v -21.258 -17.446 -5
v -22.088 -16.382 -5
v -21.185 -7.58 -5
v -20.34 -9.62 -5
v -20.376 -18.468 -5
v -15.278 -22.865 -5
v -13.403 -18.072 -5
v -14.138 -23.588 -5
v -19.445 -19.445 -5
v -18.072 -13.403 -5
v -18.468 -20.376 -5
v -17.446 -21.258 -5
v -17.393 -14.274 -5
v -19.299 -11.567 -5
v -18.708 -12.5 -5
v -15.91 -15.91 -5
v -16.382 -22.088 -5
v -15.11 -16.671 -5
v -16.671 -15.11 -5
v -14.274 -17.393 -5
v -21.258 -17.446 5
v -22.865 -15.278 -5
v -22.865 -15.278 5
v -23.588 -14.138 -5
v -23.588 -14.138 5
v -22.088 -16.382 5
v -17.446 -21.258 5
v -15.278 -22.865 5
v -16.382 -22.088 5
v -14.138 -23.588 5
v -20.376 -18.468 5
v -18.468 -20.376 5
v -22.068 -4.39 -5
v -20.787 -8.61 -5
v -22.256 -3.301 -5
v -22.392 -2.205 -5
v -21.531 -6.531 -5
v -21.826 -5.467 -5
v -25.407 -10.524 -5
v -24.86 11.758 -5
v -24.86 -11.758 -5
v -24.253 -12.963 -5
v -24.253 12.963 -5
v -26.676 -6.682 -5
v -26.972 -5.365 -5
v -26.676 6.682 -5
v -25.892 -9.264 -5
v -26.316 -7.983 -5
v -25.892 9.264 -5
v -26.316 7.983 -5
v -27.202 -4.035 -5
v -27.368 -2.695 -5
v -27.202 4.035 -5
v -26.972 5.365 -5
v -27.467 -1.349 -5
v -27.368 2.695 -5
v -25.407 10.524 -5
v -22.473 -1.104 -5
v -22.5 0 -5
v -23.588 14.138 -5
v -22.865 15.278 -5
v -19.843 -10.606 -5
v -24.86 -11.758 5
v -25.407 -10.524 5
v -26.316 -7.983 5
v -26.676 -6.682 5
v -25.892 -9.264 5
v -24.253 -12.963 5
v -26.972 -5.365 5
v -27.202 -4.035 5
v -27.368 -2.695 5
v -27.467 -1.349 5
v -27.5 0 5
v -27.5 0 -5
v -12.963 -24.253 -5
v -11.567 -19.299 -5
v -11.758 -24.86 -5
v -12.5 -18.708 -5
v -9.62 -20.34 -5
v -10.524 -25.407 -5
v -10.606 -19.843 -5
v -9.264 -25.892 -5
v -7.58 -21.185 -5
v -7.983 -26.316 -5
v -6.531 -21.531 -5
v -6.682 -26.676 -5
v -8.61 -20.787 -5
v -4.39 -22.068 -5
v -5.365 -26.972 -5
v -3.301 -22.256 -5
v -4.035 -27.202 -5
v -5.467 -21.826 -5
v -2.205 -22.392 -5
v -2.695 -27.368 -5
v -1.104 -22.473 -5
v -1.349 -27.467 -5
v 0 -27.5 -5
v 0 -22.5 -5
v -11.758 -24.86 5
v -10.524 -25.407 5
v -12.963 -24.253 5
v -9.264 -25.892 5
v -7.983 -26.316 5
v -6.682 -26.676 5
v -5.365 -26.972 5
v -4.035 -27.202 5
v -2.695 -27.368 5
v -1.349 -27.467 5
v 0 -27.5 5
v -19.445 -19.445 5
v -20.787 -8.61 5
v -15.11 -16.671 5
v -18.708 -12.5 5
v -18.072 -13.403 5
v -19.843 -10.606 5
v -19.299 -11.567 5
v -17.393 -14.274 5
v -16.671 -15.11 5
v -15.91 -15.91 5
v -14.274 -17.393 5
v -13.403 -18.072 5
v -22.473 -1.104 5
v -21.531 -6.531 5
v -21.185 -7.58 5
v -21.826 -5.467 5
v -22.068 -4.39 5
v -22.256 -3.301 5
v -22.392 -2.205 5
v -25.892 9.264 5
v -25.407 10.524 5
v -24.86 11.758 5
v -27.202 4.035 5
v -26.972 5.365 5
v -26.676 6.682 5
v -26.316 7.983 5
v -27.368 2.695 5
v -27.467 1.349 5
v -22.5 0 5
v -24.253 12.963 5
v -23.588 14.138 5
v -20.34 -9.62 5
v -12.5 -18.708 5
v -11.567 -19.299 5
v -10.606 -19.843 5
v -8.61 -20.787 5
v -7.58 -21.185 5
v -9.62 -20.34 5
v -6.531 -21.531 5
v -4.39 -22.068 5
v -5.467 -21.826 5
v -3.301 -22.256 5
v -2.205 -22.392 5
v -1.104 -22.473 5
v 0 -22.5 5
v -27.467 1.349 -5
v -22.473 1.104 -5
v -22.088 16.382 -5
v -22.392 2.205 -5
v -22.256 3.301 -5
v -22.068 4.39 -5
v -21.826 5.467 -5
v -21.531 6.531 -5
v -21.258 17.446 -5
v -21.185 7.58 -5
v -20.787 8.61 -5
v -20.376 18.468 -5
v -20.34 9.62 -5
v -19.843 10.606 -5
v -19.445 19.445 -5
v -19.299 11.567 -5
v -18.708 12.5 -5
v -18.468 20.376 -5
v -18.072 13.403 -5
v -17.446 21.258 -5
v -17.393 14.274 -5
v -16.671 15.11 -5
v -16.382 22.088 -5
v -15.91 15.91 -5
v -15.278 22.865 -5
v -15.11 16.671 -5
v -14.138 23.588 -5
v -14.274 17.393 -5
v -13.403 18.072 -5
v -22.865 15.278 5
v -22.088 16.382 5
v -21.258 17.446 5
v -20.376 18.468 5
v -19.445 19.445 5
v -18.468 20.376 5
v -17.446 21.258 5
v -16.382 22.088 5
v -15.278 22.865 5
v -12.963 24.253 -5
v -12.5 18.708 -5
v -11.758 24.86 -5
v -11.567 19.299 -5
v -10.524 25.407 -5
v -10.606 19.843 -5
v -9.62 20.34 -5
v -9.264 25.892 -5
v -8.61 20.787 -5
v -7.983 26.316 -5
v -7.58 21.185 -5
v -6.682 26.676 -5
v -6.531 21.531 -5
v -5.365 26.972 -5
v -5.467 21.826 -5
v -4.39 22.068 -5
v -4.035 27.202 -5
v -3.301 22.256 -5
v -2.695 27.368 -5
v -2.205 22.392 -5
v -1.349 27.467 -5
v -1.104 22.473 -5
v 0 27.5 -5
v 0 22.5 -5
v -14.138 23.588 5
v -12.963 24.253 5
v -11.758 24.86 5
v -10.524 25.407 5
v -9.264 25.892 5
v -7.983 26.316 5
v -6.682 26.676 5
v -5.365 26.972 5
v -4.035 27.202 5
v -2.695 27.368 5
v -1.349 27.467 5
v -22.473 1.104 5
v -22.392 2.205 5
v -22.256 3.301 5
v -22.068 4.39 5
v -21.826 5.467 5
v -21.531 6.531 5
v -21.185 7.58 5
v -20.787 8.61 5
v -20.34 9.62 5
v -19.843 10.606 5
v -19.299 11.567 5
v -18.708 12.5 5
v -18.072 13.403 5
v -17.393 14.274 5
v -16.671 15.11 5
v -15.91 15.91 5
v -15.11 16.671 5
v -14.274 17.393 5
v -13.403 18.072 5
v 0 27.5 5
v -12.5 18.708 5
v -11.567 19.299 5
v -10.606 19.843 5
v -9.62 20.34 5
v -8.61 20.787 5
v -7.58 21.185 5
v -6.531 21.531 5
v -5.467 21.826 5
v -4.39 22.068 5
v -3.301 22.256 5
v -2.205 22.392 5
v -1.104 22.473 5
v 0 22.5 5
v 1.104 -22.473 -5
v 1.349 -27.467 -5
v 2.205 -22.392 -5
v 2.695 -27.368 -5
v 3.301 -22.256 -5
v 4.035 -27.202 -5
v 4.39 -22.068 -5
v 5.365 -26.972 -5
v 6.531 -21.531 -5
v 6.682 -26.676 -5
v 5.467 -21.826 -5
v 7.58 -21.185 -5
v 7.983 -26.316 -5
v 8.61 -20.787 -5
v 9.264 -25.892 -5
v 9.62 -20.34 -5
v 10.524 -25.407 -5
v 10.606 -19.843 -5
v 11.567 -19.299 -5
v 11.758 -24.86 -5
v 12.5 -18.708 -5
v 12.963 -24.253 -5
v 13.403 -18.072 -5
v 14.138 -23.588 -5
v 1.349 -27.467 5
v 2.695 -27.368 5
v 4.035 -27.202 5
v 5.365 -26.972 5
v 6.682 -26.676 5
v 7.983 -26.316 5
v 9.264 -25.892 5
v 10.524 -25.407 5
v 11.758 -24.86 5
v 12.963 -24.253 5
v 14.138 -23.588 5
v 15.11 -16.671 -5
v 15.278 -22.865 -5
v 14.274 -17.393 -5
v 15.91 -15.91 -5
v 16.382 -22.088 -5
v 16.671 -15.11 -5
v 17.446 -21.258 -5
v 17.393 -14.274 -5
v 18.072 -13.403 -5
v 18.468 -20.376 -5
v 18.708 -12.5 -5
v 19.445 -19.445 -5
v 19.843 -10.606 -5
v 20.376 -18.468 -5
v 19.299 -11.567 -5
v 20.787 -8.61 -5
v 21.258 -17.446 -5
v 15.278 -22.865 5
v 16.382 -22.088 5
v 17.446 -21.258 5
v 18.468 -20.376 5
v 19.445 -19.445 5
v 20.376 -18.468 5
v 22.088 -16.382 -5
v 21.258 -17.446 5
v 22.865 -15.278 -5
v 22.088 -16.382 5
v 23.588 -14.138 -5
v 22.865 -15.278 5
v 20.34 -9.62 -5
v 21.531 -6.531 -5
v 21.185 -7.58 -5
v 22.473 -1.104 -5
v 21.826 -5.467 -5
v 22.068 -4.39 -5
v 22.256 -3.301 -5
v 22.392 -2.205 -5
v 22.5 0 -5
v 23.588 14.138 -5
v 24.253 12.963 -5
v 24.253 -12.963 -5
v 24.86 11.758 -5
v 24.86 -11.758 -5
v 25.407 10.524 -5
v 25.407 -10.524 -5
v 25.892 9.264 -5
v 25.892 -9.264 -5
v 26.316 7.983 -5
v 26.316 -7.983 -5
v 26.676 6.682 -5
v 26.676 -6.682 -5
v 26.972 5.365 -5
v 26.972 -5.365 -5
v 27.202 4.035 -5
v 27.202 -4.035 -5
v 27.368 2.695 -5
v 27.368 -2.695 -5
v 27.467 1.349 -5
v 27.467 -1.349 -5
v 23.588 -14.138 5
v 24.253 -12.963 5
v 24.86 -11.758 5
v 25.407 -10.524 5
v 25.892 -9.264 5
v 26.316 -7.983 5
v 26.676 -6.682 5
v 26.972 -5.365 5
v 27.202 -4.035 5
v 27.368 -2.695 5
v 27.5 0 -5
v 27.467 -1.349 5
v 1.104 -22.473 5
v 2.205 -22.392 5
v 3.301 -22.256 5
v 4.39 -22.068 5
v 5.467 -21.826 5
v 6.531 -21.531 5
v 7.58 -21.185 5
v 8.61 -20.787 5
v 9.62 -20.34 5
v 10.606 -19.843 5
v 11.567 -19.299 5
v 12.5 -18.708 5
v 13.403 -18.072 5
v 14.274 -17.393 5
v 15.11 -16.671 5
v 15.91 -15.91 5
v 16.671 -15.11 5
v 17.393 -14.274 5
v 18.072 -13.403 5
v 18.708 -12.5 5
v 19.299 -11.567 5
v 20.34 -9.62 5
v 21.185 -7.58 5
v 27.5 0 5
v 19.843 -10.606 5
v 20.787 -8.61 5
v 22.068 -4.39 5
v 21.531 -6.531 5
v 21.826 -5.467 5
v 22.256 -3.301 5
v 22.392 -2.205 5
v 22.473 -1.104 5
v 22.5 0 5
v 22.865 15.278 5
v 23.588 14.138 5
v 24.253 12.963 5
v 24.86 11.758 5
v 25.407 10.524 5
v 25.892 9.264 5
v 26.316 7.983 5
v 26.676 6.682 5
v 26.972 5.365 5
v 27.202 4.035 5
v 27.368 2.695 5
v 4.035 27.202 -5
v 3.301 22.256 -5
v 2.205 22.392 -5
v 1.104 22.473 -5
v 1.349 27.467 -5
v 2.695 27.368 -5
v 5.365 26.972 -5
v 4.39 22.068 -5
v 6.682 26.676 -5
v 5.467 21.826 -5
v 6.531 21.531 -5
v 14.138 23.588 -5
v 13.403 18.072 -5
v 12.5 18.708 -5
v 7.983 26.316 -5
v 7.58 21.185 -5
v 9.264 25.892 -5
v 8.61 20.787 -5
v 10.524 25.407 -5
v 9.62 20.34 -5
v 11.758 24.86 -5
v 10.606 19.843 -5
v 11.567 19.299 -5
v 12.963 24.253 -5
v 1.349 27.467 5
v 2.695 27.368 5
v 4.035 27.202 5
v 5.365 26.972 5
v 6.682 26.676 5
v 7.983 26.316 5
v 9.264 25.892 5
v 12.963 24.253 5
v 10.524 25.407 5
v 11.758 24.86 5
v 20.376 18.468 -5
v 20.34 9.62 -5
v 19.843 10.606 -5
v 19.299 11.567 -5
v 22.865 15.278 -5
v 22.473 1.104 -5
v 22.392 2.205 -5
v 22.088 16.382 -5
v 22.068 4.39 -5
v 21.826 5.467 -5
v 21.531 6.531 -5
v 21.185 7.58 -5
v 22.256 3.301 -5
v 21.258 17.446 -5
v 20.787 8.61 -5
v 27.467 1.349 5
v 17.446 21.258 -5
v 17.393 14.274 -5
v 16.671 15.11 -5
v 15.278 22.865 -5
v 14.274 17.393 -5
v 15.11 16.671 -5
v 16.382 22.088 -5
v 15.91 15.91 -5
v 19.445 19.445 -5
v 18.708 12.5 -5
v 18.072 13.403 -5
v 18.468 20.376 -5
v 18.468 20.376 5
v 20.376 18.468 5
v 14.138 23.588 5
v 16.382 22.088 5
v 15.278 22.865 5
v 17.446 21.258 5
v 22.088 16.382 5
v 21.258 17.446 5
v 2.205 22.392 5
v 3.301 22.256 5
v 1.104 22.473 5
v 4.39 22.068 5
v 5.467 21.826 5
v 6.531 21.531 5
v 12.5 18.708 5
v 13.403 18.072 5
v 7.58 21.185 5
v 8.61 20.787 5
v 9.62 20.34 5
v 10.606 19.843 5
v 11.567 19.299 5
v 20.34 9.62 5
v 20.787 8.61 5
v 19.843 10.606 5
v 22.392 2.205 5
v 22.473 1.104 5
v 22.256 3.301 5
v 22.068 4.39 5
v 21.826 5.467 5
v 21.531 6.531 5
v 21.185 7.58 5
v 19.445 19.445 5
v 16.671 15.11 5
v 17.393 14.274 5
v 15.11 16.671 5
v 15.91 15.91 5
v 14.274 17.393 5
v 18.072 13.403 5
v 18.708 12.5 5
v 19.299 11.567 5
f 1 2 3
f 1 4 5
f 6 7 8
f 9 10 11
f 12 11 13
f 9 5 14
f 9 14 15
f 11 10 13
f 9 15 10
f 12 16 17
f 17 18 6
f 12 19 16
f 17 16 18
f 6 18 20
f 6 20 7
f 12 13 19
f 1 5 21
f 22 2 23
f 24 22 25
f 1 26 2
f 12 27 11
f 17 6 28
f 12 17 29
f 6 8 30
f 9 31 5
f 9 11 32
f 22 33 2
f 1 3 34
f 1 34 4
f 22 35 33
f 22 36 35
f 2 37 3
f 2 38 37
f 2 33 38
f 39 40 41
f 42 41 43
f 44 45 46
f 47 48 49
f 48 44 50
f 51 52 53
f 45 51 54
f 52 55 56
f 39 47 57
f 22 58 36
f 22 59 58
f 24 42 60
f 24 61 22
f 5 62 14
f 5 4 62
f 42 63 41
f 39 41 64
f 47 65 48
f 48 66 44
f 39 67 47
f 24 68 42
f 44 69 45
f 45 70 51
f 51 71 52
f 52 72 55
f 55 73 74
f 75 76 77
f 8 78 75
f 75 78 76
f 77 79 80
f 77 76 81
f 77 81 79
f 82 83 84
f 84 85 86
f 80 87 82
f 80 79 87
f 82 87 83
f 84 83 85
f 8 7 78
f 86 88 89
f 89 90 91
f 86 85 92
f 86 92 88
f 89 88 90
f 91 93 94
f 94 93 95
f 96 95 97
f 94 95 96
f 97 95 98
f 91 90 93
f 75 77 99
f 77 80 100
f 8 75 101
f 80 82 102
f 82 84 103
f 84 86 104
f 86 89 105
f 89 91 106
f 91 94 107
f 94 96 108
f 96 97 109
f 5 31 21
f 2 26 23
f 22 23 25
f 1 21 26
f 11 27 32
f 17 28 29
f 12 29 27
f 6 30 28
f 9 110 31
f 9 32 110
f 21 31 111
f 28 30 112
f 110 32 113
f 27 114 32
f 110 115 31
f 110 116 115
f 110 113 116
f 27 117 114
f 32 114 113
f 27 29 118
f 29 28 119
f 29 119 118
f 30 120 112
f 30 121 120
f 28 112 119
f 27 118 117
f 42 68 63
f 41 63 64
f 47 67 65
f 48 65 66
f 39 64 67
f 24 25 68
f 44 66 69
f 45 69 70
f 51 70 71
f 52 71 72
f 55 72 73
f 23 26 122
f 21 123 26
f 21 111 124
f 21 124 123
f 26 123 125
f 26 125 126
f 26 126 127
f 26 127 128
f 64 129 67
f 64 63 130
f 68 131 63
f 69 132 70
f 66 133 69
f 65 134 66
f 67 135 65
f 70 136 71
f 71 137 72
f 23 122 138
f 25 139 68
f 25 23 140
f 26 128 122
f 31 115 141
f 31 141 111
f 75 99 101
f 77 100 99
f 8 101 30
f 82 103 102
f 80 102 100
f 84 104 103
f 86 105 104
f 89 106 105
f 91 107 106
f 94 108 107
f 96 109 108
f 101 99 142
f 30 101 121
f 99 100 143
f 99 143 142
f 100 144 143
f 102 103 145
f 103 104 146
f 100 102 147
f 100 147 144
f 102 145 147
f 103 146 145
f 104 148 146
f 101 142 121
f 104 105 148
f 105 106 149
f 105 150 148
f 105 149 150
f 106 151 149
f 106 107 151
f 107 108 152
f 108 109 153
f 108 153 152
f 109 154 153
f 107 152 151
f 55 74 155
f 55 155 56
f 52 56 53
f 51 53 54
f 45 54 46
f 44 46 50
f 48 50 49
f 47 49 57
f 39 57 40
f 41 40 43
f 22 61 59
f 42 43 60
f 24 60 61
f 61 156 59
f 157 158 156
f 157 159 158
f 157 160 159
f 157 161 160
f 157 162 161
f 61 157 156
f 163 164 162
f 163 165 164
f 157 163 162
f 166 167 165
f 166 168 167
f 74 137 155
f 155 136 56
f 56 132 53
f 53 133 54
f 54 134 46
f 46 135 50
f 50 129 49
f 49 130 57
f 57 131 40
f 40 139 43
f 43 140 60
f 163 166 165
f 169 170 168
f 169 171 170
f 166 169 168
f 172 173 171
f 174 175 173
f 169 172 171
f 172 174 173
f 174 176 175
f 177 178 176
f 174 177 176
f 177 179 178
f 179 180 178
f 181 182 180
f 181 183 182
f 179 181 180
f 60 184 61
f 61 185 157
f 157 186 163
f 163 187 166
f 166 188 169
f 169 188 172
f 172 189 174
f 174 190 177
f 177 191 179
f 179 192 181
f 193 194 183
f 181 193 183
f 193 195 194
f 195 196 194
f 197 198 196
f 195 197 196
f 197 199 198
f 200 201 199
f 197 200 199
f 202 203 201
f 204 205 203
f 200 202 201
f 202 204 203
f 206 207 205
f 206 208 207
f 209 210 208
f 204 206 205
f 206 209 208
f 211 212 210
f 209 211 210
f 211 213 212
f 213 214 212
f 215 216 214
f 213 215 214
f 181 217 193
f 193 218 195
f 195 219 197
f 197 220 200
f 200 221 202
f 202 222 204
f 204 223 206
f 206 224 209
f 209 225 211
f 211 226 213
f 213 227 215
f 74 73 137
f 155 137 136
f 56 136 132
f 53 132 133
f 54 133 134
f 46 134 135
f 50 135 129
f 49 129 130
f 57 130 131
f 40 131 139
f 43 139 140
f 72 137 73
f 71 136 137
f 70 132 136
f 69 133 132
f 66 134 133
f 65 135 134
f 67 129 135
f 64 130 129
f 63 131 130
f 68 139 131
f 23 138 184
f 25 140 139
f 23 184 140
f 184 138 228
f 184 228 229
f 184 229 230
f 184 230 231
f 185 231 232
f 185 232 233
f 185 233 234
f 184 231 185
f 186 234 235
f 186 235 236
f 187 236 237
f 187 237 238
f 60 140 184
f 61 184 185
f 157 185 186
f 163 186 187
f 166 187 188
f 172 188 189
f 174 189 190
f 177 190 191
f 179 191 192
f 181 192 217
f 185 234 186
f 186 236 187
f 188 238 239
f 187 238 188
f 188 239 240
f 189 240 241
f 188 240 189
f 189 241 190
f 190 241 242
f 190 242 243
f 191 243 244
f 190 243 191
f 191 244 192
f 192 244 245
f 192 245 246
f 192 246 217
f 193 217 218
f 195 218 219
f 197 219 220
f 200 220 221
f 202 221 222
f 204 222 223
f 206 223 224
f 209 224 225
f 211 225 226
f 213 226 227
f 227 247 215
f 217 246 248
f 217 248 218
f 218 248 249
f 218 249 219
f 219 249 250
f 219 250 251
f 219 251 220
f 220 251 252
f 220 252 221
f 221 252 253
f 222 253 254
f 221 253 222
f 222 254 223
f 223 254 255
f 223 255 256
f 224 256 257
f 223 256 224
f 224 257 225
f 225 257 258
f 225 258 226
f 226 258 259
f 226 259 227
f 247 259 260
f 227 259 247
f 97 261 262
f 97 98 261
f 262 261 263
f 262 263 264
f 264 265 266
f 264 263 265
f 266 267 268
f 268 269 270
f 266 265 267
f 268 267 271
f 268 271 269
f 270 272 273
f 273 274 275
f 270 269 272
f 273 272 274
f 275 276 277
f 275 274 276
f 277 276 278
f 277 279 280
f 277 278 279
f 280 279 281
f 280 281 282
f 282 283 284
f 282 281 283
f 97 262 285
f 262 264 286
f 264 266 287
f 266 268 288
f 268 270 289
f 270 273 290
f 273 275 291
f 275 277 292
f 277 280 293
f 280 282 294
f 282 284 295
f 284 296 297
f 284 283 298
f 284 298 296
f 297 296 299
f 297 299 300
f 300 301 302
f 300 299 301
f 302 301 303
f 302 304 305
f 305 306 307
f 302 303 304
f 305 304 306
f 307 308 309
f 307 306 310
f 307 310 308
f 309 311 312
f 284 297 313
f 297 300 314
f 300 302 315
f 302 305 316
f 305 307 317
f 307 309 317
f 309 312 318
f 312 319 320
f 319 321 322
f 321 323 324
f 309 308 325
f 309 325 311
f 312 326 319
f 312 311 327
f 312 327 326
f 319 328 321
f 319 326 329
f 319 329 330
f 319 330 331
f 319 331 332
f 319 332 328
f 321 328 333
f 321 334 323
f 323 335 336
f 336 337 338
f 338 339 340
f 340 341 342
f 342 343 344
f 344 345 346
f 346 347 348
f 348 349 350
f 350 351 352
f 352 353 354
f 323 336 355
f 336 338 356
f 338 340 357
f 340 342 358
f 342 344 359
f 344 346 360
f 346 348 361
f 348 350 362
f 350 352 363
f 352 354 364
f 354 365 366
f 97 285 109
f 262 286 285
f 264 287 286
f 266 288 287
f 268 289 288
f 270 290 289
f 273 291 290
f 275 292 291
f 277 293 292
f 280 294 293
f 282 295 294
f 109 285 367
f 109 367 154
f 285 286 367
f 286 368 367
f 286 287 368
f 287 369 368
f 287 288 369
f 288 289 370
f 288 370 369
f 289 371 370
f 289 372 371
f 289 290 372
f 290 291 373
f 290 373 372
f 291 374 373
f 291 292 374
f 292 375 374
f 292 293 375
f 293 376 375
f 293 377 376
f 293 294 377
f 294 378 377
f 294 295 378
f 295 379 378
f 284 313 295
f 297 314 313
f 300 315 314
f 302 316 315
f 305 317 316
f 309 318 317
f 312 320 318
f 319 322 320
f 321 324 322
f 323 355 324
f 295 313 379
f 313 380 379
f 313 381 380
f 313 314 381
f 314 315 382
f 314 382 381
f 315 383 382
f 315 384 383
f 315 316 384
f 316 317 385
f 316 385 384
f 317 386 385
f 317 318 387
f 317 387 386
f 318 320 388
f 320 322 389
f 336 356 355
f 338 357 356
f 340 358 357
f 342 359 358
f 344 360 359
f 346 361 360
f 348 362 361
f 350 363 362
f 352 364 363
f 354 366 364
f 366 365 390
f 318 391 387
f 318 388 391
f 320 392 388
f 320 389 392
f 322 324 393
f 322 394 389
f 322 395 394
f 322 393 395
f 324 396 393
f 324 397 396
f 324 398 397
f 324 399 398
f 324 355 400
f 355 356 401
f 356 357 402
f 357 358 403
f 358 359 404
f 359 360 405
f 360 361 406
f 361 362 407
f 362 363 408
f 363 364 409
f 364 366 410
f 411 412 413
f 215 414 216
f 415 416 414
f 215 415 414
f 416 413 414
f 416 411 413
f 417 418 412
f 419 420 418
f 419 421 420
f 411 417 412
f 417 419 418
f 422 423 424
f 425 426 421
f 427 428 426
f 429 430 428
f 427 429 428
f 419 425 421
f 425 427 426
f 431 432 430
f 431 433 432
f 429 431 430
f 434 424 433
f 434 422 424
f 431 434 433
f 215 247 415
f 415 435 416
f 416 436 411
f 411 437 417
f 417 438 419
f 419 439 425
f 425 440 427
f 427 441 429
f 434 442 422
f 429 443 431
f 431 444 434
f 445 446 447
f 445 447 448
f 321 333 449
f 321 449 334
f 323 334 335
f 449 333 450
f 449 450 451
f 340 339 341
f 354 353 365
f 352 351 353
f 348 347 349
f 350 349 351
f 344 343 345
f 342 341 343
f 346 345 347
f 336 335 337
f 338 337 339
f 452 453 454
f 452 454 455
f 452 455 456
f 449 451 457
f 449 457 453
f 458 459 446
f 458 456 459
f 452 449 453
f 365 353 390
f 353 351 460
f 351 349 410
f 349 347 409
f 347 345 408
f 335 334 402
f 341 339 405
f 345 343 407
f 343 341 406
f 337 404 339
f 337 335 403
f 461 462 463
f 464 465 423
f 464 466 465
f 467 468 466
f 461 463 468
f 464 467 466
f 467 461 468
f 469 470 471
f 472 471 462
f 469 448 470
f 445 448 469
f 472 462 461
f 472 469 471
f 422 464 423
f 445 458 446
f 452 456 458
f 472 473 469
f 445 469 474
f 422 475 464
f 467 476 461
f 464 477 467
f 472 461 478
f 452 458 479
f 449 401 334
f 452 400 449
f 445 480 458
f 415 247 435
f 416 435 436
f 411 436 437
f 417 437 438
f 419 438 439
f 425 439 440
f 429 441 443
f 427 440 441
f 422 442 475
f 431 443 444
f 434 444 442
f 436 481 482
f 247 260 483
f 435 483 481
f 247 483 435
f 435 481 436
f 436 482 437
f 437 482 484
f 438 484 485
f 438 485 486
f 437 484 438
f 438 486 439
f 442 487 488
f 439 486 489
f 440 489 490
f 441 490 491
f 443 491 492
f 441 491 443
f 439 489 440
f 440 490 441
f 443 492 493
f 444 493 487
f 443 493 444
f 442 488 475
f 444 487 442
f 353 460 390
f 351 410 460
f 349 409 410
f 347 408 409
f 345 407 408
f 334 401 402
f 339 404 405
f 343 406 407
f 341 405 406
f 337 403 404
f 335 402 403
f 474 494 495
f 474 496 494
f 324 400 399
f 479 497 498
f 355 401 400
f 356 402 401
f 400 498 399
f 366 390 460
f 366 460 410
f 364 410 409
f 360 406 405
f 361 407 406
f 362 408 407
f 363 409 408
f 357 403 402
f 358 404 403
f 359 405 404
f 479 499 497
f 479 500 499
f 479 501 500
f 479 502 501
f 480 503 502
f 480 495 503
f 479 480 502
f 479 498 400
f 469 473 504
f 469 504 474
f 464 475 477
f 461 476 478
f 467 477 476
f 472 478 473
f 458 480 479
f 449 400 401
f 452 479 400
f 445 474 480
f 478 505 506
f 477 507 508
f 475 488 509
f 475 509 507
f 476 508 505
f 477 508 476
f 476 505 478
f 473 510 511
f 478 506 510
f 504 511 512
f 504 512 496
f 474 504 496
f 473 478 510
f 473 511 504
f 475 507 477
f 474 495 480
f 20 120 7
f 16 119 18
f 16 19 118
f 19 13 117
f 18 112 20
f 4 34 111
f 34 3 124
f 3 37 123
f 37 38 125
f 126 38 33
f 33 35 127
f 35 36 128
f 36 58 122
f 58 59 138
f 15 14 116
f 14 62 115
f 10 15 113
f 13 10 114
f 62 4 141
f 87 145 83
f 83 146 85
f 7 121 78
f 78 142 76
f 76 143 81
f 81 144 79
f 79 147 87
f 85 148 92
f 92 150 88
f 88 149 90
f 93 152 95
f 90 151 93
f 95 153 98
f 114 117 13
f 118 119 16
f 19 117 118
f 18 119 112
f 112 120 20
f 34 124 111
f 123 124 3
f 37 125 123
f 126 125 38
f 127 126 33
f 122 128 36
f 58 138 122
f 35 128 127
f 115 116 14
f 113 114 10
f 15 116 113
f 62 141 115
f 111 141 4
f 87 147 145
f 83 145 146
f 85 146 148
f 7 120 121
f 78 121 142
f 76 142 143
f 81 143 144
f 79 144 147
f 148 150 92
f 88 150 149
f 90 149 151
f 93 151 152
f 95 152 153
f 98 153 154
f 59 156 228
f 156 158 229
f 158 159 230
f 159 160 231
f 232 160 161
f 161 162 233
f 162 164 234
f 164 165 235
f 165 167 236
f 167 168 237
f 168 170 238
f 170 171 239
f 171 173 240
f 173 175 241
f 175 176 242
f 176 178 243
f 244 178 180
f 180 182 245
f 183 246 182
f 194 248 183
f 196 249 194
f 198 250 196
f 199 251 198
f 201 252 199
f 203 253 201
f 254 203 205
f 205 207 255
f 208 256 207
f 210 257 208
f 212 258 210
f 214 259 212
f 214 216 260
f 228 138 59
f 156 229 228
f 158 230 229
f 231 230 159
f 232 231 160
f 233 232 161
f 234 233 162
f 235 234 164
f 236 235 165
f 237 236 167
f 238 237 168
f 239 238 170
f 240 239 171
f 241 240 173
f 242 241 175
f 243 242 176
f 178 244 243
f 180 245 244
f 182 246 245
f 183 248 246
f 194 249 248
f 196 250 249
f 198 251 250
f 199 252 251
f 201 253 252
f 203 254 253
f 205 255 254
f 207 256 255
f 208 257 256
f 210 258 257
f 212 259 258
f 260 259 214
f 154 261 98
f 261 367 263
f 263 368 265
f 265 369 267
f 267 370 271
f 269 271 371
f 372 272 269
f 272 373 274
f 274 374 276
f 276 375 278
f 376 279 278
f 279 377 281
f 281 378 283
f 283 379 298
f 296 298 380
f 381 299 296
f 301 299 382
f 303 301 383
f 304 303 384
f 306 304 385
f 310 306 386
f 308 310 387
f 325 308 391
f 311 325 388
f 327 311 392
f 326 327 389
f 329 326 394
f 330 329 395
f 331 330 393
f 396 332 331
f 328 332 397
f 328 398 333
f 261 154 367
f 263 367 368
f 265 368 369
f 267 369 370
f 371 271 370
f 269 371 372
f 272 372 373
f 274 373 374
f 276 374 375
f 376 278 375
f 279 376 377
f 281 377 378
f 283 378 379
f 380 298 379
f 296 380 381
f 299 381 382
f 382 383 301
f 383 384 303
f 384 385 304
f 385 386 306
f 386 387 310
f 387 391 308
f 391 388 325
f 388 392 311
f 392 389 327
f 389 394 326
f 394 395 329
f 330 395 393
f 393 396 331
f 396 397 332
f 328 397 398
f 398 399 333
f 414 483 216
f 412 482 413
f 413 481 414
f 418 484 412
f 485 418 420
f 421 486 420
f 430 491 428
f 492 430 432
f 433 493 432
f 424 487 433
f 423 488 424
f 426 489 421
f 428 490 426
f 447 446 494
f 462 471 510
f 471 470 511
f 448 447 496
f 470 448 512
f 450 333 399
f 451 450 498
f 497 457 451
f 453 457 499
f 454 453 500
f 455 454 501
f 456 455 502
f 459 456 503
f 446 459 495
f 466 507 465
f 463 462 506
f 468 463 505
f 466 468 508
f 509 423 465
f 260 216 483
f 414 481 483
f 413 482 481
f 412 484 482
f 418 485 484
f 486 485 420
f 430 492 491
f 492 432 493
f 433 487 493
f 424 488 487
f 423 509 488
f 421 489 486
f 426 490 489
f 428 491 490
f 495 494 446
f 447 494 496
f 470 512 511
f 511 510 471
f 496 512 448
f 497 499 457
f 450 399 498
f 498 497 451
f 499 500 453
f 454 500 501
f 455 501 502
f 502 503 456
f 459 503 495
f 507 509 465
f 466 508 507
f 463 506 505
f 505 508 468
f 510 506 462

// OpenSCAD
wall_thickness = 5;
height = 10;
outer_diameter = 55;
inner_diameter = outer_diameter - wall_thickness * 2;

difference() {
  cylinder(h=height, d=outer_diameter, center=true, $fn=128);
  cylinder(h=height + 1, d=inner_diameter, center=true, $fn=128);
}
